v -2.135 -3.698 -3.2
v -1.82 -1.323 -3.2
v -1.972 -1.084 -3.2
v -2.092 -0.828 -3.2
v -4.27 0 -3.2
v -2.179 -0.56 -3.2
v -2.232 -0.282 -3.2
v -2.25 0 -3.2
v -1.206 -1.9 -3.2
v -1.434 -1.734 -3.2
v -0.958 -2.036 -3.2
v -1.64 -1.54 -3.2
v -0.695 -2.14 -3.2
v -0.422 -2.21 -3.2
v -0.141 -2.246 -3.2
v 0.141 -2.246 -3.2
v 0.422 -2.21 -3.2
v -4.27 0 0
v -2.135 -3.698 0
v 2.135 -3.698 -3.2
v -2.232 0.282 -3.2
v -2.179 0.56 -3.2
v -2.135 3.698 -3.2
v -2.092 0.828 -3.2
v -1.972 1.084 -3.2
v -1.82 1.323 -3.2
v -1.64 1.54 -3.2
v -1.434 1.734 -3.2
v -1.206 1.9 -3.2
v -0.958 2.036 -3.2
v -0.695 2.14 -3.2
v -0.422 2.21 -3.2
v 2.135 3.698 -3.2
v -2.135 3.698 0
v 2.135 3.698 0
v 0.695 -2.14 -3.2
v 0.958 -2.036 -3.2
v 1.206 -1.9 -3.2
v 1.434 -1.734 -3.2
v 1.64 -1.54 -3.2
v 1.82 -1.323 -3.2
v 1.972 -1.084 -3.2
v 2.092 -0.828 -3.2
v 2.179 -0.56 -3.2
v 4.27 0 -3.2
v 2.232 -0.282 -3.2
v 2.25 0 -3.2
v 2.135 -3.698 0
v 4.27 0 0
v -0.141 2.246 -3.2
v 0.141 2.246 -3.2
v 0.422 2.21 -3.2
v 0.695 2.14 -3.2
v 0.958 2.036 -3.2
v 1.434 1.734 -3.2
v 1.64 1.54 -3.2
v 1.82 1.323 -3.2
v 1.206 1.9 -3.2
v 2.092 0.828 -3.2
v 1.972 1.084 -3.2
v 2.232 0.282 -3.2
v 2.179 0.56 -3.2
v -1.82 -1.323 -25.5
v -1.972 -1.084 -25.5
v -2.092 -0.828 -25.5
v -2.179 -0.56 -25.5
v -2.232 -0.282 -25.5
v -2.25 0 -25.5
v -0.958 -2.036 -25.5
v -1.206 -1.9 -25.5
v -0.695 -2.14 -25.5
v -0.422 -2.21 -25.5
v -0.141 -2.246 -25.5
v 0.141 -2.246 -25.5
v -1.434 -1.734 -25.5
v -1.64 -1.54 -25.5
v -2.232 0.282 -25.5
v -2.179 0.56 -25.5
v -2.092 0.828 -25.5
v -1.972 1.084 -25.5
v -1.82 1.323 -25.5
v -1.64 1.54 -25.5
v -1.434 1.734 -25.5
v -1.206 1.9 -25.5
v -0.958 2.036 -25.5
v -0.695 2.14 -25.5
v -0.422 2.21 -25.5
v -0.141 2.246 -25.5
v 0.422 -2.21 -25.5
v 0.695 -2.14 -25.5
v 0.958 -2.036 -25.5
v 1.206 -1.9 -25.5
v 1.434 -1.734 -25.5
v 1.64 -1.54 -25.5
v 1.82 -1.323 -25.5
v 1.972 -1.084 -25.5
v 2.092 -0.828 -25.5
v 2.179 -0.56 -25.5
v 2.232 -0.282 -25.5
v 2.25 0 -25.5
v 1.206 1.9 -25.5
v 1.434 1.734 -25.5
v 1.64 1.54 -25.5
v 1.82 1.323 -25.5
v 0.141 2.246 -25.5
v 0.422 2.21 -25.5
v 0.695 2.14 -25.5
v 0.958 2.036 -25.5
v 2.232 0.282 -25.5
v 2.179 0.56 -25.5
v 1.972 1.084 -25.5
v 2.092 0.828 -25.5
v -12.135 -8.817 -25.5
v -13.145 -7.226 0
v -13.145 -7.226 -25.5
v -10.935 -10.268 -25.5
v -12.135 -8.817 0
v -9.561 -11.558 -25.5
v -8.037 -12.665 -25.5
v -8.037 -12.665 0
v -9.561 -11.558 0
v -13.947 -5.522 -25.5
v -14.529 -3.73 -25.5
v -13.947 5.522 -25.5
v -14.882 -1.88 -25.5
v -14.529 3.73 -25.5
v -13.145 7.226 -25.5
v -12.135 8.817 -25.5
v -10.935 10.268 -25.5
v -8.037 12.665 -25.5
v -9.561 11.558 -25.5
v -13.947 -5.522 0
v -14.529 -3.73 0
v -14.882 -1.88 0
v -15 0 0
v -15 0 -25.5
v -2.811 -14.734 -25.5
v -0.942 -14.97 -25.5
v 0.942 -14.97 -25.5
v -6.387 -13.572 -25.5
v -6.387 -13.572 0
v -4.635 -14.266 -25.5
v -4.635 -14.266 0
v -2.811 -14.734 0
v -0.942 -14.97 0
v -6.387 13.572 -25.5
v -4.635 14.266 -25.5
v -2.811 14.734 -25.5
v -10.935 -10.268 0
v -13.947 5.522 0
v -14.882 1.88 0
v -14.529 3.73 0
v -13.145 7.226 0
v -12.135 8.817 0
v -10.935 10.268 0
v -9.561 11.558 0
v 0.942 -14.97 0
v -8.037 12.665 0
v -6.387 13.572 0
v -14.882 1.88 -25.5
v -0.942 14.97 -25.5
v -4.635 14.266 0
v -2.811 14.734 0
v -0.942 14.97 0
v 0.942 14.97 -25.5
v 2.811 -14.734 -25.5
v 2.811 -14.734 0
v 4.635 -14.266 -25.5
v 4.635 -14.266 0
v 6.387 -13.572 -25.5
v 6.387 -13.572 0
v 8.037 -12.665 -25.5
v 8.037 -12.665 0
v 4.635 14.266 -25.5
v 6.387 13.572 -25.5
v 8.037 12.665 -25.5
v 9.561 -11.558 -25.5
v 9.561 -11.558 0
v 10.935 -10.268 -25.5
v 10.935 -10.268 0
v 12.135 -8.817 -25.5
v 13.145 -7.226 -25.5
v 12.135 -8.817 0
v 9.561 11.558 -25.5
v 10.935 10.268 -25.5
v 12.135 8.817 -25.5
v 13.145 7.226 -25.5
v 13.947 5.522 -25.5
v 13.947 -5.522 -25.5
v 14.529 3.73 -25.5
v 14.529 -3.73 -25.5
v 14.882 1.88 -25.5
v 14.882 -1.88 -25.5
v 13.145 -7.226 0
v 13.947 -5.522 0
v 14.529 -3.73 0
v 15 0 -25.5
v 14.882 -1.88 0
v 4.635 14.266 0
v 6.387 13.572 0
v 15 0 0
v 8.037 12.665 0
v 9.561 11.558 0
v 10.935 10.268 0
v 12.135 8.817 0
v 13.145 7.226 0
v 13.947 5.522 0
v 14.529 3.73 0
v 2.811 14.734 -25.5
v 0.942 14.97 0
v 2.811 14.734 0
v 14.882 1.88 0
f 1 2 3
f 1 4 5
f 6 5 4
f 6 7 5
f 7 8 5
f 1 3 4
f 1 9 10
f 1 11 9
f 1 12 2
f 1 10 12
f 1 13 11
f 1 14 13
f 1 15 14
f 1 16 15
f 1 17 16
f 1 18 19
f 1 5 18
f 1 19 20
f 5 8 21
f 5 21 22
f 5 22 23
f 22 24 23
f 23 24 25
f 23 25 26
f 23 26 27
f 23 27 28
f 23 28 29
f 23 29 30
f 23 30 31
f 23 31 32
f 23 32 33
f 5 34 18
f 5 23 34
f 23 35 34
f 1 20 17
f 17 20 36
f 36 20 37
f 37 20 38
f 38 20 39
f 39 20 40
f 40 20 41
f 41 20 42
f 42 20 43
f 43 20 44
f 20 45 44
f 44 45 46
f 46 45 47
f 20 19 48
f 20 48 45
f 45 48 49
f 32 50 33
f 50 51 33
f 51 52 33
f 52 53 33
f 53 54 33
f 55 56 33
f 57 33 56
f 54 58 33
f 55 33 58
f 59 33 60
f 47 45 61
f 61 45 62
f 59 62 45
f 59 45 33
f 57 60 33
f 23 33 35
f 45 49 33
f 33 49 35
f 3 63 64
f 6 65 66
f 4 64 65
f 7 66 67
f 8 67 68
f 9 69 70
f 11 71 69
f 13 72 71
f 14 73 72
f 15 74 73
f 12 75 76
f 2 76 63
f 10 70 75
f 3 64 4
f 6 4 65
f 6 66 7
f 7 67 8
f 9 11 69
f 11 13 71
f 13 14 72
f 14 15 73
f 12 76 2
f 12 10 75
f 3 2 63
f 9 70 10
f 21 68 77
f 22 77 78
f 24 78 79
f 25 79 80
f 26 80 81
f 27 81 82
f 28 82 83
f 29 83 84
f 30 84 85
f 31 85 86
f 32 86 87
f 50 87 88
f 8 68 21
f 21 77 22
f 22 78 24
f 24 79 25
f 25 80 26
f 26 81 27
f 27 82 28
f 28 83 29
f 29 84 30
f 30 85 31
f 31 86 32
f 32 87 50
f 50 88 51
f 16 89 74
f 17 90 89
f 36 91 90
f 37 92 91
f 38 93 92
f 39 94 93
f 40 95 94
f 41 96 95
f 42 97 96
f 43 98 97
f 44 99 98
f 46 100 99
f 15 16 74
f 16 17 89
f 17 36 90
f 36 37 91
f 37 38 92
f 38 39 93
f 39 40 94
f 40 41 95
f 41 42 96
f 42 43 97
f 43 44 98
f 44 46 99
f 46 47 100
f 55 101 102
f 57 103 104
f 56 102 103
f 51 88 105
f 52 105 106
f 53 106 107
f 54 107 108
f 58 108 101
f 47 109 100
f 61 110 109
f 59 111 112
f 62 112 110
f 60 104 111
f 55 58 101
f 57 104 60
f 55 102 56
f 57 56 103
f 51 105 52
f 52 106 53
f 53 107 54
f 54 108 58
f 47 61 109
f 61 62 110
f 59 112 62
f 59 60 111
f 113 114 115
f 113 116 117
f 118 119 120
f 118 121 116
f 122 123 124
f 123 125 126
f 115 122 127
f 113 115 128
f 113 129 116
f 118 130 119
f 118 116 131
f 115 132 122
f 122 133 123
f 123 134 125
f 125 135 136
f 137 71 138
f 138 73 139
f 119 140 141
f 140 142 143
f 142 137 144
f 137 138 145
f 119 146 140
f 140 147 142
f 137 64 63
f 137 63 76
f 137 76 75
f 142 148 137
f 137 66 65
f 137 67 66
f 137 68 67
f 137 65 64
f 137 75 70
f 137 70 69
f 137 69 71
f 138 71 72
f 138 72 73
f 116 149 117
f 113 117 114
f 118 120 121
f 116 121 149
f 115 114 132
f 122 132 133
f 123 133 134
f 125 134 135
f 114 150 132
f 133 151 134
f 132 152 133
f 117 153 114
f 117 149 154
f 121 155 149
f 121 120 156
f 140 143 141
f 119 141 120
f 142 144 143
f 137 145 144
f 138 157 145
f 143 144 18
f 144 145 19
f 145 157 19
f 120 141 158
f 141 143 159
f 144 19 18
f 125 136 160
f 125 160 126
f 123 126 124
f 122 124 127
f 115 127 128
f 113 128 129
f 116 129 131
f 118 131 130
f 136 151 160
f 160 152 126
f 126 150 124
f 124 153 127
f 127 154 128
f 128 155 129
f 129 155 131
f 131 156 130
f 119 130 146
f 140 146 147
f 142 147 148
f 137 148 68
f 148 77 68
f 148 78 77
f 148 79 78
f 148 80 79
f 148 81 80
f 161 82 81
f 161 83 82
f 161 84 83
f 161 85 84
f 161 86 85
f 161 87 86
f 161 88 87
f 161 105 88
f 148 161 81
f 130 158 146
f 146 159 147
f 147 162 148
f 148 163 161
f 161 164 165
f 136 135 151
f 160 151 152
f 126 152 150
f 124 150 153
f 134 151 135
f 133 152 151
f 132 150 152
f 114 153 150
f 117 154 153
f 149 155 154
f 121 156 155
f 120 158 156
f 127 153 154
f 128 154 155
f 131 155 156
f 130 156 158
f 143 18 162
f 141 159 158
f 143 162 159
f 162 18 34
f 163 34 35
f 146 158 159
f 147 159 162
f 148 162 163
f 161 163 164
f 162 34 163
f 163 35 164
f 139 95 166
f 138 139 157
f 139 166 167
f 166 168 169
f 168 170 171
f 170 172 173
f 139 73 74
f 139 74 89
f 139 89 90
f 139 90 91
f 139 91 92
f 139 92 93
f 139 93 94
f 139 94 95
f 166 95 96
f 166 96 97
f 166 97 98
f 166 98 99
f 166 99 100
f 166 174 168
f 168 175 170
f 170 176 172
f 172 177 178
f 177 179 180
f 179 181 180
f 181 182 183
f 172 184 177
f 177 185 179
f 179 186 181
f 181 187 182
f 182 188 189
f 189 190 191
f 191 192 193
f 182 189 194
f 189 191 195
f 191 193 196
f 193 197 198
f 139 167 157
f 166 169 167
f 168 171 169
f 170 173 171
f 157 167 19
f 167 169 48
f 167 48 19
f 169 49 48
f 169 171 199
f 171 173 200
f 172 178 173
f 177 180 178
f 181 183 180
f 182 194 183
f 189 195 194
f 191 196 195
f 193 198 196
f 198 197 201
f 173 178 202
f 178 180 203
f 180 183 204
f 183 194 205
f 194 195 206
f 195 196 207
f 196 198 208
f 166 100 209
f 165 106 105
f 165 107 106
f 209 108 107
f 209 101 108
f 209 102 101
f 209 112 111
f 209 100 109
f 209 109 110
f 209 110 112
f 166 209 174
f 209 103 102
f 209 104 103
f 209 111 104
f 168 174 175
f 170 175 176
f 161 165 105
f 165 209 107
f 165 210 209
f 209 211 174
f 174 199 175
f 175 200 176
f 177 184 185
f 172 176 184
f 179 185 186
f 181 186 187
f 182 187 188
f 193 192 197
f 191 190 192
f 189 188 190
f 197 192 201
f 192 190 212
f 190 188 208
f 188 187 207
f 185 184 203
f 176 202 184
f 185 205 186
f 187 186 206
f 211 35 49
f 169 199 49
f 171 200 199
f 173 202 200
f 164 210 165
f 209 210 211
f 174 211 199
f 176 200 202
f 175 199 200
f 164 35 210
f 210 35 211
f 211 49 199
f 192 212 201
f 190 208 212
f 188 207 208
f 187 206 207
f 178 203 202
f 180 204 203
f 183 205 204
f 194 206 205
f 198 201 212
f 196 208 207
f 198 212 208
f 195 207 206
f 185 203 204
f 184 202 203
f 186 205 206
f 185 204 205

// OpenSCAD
$fn = 50;

difference() {
	union() {
		translate(v = [0, 0, -25.5]) {
			cylinder(h = 25.5, r = 15.0);
		}
	}
	union() {
		translate(v = [0, 0, 0]) {
			rotate(a = [0, 0, 0]) {
				difference() {
					union() {
						translate(v = [0, 0, -3.2]) {
							linear_extrude(height = 3.2) {
								polygon(points = [[4.2698, 0.0], [2.1349000000000005, 3.697755269078796], [-2.134899999999999, 3.6977552690787965], [-4.2698, 5.228996902999369e-16], [-2.134900000000002, -3.6977552690787956], [2.1348999999999974, -3.697755269078798]]);
							}
						}
					}
					union();
				}
			}
		}
		#translate(v = [0, 0, -100.0]) {
			cylinder(h = 200, r = 2.25);
		}
	}
}
